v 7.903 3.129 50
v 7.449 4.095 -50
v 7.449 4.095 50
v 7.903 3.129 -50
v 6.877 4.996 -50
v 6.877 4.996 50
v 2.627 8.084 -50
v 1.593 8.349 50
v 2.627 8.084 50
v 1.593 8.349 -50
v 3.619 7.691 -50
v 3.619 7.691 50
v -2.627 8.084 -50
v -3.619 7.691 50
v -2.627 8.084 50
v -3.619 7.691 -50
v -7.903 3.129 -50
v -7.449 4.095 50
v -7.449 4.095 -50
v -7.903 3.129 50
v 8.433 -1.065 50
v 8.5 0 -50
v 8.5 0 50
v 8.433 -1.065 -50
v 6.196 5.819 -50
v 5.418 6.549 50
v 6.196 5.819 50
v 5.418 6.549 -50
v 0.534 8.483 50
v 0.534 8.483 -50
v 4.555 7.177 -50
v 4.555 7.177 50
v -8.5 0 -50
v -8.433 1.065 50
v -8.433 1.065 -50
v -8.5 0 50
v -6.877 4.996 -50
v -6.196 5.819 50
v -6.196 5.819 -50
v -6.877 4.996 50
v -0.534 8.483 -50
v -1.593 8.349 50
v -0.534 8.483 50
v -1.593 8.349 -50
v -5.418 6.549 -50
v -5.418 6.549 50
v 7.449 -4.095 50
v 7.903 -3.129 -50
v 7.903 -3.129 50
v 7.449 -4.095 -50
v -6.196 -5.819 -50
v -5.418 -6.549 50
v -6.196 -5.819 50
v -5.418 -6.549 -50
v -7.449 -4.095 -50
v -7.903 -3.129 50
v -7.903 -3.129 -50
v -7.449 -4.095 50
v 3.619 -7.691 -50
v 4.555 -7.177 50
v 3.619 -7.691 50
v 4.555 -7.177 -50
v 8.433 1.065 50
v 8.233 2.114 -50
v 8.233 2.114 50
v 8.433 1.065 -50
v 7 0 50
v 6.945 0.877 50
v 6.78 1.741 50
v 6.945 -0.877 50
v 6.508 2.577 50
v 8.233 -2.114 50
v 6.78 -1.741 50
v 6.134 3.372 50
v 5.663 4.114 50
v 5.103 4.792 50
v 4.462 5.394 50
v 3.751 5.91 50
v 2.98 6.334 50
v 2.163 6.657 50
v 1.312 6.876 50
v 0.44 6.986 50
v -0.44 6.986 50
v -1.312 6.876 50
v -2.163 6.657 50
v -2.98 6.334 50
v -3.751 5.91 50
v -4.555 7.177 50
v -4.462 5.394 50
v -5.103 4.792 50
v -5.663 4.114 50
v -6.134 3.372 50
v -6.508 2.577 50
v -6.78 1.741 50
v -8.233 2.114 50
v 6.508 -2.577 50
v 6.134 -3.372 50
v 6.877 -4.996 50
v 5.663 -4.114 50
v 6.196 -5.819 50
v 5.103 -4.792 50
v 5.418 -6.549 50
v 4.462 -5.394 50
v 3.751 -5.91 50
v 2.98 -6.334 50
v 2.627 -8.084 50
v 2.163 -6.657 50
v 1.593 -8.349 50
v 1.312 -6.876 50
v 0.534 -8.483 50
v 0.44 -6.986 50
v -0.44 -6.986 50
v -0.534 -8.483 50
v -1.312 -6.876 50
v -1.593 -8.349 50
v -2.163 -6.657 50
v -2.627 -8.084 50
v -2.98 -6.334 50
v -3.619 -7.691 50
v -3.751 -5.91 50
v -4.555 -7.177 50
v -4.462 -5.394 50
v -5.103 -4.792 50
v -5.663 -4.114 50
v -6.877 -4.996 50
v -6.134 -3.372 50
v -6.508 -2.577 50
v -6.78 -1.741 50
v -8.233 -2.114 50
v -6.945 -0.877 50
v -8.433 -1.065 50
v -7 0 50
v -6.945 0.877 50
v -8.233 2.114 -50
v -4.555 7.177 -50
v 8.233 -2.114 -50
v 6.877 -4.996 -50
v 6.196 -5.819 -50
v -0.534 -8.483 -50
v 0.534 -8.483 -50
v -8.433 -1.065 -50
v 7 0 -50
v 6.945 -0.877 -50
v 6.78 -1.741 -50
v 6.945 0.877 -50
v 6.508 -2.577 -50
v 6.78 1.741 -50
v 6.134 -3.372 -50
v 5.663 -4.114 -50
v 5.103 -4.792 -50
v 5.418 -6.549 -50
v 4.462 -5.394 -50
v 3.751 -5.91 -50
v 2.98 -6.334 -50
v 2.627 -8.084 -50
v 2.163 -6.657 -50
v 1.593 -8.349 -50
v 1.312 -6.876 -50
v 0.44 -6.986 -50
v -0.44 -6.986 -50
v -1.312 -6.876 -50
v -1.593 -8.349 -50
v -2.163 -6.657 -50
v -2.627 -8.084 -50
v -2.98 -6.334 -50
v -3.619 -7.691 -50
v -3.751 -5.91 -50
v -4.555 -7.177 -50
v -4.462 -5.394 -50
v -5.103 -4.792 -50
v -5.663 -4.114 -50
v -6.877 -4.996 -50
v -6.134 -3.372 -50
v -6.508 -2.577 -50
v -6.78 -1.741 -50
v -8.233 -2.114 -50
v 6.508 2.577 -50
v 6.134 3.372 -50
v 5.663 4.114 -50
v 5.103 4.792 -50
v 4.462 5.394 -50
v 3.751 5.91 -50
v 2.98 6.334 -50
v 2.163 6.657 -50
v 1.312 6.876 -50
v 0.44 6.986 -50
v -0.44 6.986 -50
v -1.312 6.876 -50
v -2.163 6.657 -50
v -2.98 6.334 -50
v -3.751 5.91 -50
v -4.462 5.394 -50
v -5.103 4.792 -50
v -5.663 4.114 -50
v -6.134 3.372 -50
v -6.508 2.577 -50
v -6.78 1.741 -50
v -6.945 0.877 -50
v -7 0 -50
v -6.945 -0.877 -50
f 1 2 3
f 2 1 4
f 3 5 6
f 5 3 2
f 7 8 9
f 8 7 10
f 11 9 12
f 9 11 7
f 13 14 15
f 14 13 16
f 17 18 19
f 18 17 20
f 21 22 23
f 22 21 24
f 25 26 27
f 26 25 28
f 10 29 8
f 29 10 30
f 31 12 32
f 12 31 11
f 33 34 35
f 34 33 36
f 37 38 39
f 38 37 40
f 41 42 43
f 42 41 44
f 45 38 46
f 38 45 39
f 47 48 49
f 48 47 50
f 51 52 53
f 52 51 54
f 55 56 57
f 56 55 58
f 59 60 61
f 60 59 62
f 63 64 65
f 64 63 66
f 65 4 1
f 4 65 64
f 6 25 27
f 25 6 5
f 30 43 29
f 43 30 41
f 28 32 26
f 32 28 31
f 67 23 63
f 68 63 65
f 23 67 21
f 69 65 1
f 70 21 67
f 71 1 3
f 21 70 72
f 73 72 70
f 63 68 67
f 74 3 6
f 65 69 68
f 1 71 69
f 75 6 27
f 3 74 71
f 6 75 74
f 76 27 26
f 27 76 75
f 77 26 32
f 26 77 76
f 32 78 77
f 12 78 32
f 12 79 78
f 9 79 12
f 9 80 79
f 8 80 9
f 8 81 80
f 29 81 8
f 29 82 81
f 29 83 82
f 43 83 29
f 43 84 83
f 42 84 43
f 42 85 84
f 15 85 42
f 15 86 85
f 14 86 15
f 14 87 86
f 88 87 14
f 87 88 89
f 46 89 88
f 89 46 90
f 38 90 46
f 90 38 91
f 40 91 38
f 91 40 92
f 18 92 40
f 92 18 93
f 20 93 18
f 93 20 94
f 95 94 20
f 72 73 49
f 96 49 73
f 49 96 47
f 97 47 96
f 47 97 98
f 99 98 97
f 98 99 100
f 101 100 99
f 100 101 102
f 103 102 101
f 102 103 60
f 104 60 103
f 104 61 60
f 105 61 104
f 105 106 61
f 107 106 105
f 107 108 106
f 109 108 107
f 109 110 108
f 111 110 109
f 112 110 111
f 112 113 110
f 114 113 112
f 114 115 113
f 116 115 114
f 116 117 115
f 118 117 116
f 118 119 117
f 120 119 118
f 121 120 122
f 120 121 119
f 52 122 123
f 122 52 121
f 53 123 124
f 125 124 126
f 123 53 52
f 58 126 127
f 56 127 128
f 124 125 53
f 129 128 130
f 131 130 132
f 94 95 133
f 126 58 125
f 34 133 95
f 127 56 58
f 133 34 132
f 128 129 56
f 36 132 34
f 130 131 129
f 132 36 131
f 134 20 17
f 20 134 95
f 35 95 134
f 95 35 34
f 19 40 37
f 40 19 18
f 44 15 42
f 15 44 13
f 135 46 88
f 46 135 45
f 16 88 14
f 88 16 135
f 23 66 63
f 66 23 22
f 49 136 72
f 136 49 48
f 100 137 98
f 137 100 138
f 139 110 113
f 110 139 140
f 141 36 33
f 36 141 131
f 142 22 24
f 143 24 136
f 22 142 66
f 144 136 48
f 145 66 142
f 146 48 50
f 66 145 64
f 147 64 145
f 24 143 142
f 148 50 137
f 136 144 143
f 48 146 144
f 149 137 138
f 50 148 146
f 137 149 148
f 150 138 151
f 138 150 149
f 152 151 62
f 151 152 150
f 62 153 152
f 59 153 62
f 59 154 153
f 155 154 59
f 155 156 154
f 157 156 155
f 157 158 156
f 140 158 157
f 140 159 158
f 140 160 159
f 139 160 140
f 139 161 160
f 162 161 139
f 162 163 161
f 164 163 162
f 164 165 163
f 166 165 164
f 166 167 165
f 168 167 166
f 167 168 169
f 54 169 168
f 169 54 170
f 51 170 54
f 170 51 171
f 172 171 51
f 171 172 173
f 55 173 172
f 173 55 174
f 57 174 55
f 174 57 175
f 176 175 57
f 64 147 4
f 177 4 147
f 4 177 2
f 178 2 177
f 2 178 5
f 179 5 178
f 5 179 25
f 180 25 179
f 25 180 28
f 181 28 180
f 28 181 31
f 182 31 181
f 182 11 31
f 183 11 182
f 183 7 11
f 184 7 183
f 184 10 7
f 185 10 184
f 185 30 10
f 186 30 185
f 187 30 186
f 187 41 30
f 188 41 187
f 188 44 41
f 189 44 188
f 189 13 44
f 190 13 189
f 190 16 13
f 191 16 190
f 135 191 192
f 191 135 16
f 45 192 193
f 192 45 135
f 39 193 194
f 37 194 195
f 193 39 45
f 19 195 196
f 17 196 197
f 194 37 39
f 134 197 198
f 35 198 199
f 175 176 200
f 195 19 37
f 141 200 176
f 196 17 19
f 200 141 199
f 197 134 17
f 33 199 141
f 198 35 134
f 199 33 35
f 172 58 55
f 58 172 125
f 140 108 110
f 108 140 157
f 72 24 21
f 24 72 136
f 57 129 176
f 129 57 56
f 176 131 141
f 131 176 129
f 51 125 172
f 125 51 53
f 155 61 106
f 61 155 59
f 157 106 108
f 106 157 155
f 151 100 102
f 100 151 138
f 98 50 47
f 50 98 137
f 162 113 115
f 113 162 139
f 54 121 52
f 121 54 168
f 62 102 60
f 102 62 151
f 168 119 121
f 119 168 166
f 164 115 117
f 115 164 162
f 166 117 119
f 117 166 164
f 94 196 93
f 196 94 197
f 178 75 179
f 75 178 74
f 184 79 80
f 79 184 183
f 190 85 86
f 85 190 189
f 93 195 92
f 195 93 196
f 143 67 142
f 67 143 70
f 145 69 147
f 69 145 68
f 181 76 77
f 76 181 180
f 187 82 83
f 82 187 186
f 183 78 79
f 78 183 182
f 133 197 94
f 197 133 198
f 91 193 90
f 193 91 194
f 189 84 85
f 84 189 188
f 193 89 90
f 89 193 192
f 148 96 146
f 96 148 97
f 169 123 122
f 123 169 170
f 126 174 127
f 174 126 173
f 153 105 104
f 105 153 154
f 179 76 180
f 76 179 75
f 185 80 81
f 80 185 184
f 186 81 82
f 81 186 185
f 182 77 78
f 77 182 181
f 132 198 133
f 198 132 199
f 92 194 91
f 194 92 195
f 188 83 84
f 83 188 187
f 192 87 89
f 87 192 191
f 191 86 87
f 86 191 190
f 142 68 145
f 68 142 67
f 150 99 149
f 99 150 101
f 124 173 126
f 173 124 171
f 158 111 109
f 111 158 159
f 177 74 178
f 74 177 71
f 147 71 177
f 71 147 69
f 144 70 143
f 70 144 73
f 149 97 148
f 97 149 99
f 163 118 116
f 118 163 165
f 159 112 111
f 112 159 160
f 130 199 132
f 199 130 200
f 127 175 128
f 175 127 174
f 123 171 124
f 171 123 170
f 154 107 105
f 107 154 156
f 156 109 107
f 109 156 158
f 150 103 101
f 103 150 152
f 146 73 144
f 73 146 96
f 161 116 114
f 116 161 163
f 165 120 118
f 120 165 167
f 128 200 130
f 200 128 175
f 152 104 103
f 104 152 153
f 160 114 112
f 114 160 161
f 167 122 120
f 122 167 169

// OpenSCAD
$fn = 50;


difference() {
	union() {
		translate(v = [0, 0, -50.0000000000]) {
			cylinder(h = 100, r = 8.5000000000);
		}
	}
	union() {
		translate(v = [0, 0, -100.0000000000]) {
			cylinder(h = 200, r = 7);
		}
	}
}
